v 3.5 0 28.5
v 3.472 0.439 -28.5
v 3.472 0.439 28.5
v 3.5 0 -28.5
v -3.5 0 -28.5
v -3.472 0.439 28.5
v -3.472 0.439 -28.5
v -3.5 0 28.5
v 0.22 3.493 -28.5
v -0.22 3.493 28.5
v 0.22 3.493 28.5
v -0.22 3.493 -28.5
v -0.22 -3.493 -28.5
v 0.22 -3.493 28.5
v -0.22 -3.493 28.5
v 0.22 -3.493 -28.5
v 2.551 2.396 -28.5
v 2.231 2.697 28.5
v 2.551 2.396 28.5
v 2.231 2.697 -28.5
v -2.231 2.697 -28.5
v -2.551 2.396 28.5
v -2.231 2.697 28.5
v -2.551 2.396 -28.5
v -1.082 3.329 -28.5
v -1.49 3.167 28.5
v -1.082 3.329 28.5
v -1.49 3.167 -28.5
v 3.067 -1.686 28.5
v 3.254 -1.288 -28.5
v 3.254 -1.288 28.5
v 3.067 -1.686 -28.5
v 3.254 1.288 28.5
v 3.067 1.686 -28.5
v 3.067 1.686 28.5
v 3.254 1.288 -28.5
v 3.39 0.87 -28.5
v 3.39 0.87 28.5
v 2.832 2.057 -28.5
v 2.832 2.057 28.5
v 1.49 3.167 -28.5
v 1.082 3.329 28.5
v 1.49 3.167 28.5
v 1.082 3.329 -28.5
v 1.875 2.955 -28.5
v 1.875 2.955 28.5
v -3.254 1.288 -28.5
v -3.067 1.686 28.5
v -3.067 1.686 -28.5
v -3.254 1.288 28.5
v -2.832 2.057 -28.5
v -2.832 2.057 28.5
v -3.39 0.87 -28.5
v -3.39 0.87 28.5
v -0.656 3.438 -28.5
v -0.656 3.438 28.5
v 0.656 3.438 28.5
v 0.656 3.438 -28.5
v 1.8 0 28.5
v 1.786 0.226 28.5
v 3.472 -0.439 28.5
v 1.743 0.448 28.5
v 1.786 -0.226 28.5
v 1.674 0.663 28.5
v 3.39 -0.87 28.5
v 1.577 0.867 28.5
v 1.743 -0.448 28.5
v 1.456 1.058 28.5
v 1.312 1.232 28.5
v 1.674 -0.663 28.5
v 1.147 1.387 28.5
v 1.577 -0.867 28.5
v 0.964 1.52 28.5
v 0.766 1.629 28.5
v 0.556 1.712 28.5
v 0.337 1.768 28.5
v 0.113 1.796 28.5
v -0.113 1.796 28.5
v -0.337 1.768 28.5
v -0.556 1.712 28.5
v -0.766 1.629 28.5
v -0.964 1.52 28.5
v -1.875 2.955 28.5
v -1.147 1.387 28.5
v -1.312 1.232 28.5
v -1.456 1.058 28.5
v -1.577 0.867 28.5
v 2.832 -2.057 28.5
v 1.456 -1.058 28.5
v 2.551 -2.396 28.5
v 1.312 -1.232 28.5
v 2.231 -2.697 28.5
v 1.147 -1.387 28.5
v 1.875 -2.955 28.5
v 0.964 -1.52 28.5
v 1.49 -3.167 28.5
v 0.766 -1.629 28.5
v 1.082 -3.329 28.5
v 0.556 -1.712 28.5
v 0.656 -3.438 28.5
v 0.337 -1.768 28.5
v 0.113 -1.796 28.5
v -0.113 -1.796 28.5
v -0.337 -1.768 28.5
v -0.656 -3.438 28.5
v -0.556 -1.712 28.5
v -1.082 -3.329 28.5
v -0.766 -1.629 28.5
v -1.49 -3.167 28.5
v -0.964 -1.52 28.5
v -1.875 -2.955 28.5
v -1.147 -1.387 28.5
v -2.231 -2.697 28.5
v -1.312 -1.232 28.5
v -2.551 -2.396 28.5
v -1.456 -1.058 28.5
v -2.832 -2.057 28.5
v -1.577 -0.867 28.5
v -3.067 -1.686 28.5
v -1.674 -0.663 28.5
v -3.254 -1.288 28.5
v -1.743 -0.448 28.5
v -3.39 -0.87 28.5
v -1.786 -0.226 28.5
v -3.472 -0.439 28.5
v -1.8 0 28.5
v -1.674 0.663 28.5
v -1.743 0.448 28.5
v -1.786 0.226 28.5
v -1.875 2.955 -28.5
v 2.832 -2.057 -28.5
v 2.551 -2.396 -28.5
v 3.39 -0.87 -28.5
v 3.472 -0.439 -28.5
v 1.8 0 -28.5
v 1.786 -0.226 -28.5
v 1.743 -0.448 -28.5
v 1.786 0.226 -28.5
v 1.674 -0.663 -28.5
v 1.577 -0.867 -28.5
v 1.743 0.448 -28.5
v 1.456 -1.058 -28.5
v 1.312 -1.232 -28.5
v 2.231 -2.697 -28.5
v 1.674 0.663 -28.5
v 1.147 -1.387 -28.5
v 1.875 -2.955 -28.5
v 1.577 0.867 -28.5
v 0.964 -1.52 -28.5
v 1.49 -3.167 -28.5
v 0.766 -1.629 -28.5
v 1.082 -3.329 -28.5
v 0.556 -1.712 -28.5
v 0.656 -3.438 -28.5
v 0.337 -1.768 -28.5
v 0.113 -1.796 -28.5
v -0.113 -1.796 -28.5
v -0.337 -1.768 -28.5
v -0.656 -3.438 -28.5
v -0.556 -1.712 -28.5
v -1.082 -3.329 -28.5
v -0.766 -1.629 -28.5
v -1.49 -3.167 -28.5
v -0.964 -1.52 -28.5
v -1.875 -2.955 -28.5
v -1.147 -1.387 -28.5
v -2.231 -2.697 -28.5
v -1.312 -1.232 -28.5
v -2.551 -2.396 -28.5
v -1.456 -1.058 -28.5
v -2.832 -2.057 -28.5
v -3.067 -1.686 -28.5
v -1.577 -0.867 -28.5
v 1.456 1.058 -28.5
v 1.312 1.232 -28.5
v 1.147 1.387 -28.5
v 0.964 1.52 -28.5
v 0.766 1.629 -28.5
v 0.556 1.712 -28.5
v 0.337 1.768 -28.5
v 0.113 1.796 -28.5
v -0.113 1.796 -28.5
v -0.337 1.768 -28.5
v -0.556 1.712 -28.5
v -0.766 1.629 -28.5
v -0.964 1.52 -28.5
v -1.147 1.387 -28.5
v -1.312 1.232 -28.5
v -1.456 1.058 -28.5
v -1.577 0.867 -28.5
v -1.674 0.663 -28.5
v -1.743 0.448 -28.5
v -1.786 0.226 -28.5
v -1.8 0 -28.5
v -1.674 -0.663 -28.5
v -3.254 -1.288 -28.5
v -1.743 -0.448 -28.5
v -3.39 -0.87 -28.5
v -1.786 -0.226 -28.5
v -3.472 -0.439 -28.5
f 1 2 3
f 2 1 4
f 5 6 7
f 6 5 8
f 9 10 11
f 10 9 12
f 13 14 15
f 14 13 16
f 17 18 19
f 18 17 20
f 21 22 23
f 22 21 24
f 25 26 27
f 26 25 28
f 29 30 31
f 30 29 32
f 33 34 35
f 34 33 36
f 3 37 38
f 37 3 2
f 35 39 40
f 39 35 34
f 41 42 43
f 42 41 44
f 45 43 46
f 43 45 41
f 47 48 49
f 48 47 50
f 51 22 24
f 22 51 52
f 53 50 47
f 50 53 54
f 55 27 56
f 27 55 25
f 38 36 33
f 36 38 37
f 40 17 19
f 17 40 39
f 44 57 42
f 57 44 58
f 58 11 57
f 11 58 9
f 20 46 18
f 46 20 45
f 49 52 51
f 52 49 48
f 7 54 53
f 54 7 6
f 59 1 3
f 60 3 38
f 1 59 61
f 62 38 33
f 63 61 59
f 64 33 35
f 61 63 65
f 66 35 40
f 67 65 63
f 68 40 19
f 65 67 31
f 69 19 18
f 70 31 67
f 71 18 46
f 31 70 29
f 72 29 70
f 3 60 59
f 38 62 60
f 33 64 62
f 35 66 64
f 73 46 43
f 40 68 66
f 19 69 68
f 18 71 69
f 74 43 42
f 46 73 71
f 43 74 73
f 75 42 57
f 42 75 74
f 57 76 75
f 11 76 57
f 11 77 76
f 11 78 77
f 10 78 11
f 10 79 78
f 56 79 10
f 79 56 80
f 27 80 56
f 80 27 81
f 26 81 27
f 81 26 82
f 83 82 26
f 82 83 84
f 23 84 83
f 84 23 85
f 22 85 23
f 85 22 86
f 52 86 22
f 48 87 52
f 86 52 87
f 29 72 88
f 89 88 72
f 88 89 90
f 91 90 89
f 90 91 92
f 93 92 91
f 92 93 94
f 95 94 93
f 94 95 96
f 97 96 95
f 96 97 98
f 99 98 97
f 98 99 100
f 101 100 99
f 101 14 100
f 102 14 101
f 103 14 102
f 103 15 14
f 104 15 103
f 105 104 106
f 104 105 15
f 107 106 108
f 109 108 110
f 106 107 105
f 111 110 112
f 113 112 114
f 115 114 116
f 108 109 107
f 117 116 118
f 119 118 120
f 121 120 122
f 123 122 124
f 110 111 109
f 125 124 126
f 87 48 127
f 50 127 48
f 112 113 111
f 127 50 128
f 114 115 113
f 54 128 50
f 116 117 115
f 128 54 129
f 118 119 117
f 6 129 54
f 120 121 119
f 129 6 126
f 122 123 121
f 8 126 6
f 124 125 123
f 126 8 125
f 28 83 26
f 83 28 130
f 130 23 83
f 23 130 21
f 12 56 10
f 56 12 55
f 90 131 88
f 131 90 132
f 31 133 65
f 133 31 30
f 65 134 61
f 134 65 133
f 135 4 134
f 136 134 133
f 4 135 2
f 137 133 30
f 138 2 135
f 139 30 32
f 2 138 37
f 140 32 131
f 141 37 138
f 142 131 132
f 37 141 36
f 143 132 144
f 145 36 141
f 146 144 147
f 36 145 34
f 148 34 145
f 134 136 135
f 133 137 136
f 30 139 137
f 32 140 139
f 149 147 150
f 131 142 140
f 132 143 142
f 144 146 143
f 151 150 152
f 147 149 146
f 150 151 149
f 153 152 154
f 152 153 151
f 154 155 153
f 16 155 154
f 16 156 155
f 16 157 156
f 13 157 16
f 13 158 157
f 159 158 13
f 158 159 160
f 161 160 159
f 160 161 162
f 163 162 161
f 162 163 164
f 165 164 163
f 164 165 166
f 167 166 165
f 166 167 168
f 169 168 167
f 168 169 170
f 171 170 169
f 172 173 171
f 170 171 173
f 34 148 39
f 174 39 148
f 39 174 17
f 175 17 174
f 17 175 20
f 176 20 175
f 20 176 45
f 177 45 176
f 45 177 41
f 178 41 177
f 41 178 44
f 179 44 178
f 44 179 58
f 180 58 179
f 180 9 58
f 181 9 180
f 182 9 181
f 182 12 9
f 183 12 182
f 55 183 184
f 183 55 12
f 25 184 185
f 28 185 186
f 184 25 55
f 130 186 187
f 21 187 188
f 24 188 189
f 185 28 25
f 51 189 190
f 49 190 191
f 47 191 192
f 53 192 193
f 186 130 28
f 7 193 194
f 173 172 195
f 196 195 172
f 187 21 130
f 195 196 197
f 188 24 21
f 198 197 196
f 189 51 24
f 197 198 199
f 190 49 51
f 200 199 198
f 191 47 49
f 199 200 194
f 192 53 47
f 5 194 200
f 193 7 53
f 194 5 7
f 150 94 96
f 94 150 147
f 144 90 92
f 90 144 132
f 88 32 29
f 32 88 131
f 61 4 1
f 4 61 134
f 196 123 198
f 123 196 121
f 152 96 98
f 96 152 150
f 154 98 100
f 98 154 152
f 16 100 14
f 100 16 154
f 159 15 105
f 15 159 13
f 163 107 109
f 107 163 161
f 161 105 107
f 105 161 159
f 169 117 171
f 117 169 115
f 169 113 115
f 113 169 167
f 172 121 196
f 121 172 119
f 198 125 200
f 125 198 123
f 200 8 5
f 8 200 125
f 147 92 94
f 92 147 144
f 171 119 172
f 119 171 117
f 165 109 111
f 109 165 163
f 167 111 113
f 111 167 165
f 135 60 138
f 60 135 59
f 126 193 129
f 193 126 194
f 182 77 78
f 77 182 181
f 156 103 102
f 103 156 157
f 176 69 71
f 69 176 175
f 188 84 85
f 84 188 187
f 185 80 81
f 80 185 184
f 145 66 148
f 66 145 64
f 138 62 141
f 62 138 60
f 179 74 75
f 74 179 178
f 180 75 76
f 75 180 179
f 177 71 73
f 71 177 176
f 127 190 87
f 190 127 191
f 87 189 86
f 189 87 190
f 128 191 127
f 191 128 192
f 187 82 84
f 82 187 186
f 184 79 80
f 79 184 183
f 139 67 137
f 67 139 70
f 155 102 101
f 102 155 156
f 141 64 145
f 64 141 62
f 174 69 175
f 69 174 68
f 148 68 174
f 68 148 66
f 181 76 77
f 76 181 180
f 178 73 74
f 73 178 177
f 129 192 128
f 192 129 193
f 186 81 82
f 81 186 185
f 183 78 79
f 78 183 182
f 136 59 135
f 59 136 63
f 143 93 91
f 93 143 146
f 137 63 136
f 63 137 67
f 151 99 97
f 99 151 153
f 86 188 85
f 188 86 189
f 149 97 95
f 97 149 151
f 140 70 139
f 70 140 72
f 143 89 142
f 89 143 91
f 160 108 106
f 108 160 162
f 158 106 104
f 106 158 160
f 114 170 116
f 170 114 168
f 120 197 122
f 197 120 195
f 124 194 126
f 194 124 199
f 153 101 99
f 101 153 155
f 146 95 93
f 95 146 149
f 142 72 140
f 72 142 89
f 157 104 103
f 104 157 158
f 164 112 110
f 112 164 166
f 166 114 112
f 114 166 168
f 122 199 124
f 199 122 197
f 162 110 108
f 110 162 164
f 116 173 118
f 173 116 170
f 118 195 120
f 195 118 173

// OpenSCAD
$fn = 50;


difference() {
	union() {
		translate(v = [0, 0, -28.5000000000]) {
			cylinder(h = 57, r = 3.5000000000);
		}
	}
	union() {
		translate(v = [0, 0, -100.0000000000]) {
			cylinder(h = 200, r = 1.8000000000);
		}
	}
}
